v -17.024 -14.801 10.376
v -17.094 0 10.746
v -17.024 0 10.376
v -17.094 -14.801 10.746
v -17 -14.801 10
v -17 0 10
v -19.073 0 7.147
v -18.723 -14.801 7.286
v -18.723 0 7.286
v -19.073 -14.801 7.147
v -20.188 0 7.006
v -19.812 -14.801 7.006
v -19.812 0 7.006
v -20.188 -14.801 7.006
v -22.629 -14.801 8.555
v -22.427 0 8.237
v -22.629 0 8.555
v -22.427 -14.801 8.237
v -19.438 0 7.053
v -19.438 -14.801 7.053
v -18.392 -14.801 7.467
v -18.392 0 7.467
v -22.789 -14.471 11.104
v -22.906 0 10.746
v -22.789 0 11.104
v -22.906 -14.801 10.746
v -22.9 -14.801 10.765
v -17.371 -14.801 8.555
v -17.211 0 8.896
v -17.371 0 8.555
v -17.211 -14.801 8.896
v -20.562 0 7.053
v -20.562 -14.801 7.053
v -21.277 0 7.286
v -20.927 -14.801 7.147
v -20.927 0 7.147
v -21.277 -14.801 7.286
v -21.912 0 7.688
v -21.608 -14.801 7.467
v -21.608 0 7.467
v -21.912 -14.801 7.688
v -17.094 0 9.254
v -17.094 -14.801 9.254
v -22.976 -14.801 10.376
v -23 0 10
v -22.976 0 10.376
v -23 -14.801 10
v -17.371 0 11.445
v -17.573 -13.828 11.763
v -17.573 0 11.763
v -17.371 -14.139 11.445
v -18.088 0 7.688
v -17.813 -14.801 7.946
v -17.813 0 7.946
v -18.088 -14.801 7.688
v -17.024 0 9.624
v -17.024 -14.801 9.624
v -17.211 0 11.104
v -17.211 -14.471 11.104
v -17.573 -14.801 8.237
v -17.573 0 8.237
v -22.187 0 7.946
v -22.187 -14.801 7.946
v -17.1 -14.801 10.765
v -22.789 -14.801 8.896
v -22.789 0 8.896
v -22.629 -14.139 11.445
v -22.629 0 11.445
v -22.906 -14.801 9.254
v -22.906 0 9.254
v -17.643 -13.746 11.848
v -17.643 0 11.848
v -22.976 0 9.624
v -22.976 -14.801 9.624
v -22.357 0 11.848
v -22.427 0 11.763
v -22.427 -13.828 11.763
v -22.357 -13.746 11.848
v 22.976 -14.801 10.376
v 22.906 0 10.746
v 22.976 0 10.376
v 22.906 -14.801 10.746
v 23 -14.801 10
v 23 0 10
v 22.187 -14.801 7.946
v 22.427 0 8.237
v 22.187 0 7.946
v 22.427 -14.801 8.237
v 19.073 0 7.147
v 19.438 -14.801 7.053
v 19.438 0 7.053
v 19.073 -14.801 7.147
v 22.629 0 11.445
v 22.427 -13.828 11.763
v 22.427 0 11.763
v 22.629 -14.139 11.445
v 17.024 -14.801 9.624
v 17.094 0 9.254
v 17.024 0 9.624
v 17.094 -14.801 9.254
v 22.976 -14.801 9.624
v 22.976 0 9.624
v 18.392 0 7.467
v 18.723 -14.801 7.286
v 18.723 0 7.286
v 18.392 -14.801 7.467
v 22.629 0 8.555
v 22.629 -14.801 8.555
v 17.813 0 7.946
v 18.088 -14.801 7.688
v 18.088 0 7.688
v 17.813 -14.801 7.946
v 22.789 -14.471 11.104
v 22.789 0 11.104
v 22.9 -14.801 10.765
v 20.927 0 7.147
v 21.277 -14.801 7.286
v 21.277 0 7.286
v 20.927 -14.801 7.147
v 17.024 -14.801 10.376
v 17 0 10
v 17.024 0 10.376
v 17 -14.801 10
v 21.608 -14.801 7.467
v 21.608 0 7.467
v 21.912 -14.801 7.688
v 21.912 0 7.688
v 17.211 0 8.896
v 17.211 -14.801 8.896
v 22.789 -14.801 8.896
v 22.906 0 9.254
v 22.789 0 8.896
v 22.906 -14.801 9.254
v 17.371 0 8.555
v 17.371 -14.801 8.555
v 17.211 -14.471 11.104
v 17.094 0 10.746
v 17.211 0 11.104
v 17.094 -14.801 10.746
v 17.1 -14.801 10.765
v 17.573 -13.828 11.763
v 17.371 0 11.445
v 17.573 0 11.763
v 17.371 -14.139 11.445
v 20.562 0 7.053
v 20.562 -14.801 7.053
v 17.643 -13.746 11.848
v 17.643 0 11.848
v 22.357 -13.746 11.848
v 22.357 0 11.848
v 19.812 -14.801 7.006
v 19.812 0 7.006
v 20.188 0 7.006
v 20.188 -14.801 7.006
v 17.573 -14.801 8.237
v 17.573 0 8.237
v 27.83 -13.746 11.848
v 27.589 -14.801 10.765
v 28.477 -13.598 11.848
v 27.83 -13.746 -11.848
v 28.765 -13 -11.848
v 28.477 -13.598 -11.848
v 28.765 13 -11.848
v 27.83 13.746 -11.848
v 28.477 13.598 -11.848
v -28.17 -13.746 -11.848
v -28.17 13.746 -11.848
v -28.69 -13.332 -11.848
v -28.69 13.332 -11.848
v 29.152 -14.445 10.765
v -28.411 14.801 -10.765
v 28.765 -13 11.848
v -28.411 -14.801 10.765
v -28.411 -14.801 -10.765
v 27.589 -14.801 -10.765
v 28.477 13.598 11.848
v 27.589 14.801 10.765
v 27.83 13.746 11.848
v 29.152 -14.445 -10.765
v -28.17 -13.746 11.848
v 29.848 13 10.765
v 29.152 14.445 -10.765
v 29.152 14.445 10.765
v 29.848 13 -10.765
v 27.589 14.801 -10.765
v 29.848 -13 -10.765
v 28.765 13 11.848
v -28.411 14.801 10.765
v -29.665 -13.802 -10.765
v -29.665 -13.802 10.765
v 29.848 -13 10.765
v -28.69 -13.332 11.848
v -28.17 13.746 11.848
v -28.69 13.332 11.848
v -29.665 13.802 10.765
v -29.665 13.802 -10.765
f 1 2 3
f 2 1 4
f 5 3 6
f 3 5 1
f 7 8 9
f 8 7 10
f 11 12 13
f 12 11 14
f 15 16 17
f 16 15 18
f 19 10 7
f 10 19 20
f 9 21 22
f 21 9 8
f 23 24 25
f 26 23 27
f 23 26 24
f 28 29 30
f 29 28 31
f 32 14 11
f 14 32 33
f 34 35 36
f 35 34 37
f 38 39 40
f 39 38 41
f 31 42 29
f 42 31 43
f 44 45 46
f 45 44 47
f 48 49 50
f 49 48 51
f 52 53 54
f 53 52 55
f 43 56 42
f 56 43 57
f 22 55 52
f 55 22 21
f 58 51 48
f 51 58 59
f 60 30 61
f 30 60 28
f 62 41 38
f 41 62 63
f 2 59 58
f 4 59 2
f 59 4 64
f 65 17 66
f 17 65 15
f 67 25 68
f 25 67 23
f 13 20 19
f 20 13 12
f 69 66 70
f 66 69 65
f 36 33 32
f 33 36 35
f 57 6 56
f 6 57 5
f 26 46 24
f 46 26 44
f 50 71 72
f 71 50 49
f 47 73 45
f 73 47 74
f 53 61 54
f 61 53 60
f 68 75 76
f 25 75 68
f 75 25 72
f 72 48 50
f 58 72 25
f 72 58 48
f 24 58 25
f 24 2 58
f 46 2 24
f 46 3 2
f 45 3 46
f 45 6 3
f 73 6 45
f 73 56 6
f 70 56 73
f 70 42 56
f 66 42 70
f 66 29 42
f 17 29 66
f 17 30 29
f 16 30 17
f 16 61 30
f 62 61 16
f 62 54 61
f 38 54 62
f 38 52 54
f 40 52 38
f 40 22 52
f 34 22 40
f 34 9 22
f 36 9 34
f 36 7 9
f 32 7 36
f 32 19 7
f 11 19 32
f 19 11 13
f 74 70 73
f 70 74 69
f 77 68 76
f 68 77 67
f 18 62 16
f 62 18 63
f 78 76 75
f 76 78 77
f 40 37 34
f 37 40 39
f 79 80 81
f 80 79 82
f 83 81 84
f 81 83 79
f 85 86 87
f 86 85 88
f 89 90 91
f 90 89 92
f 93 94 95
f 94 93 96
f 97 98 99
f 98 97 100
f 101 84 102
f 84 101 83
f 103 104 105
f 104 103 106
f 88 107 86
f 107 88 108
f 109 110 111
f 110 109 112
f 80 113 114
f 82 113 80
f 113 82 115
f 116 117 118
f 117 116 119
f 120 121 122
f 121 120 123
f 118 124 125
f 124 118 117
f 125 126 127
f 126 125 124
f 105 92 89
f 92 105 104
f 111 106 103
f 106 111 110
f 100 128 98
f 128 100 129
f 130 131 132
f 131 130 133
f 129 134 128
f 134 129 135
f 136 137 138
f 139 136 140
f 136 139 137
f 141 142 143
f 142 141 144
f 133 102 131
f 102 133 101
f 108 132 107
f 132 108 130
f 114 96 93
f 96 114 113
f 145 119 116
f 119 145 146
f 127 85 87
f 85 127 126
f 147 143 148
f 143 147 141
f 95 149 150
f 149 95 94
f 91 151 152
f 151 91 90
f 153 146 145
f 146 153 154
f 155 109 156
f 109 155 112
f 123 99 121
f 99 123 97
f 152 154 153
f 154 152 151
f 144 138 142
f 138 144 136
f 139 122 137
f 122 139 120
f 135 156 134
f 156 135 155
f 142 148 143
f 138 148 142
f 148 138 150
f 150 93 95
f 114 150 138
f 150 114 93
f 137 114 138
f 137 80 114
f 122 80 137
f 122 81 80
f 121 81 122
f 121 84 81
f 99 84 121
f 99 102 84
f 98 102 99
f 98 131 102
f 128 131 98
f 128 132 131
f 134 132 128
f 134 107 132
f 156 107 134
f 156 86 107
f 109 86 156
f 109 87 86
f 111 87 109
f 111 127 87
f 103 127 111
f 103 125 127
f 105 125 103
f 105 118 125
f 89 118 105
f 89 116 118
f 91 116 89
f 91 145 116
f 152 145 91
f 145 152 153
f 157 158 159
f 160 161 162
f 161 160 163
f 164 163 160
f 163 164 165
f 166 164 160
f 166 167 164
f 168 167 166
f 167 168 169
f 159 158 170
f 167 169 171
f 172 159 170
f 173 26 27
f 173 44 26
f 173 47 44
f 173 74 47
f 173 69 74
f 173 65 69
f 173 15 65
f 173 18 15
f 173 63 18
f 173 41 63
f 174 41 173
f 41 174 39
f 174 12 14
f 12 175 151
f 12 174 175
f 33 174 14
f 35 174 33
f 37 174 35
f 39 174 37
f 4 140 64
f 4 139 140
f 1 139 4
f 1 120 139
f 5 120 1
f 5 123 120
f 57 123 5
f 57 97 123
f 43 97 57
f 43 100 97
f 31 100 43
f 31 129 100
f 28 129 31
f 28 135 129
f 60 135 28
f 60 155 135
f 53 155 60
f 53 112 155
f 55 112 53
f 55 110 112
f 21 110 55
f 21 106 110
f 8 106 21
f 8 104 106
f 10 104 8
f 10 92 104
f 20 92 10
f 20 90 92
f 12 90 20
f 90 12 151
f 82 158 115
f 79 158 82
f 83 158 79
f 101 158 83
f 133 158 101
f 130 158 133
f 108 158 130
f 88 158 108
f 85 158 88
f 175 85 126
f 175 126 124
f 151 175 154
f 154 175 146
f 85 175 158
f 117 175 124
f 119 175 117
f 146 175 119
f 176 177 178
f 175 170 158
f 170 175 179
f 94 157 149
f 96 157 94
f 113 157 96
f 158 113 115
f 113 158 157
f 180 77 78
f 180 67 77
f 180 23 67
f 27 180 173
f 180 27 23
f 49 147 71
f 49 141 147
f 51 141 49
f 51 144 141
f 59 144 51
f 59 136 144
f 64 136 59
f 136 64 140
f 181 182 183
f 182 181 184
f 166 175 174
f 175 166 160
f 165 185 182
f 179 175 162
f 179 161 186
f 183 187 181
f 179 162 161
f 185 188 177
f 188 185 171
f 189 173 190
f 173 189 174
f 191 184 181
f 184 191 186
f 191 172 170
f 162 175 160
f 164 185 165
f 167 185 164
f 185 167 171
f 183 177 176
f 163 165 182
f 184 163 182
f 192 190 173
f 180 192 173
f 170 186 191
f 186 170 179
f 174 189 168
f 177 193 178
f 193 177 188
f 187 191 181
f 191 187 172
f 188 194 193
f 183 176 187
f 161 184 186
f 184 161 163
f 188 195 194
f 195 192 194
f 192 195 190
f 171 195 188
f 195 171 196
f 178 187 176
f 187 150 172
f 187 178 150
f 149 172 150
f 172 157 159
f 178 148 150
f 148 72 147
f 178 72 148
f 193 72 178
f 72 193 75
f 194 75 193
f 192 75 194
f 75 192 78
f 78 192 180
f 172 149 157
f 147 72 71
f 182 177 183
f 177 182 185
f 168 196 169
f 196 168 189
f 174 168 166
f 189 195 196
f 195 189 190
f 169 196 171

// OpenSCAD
// Parameters
block_length = 60;
block_width = 30;
block_thickness = 20; // Increased thickness for a more robust appearance
hole_diameter = 6;
hole_radius = hole_diameter / 2;
hole_offset_x = 10; // from each end
hole_center_y = block_width / 2;

// Rounded rectangle module
module rounded_block(length, width, height, radius) {
    minkowski() {
        cube([length - 2*radius, width - 2*radius, height], center = true);
        sphere(r=radius);
    }
}

// Main block with holes
difference() {
    // Rounded rectangular block
    translate([0, 0, 0])
        rounded_block(block_length, block_width, block_thickness, 2);

    // Holes along the longer side (X-axis), centered in Y
    for (x = [hole_offset_x, block_length - hole_offset_x]) {
        translate([x - block_length/2, 0, block_thickness/2])
            rotate([90, 0, 0])
                cylinder(h = block_width + 2, r = hole_radius, $fn=50);
    }
}
